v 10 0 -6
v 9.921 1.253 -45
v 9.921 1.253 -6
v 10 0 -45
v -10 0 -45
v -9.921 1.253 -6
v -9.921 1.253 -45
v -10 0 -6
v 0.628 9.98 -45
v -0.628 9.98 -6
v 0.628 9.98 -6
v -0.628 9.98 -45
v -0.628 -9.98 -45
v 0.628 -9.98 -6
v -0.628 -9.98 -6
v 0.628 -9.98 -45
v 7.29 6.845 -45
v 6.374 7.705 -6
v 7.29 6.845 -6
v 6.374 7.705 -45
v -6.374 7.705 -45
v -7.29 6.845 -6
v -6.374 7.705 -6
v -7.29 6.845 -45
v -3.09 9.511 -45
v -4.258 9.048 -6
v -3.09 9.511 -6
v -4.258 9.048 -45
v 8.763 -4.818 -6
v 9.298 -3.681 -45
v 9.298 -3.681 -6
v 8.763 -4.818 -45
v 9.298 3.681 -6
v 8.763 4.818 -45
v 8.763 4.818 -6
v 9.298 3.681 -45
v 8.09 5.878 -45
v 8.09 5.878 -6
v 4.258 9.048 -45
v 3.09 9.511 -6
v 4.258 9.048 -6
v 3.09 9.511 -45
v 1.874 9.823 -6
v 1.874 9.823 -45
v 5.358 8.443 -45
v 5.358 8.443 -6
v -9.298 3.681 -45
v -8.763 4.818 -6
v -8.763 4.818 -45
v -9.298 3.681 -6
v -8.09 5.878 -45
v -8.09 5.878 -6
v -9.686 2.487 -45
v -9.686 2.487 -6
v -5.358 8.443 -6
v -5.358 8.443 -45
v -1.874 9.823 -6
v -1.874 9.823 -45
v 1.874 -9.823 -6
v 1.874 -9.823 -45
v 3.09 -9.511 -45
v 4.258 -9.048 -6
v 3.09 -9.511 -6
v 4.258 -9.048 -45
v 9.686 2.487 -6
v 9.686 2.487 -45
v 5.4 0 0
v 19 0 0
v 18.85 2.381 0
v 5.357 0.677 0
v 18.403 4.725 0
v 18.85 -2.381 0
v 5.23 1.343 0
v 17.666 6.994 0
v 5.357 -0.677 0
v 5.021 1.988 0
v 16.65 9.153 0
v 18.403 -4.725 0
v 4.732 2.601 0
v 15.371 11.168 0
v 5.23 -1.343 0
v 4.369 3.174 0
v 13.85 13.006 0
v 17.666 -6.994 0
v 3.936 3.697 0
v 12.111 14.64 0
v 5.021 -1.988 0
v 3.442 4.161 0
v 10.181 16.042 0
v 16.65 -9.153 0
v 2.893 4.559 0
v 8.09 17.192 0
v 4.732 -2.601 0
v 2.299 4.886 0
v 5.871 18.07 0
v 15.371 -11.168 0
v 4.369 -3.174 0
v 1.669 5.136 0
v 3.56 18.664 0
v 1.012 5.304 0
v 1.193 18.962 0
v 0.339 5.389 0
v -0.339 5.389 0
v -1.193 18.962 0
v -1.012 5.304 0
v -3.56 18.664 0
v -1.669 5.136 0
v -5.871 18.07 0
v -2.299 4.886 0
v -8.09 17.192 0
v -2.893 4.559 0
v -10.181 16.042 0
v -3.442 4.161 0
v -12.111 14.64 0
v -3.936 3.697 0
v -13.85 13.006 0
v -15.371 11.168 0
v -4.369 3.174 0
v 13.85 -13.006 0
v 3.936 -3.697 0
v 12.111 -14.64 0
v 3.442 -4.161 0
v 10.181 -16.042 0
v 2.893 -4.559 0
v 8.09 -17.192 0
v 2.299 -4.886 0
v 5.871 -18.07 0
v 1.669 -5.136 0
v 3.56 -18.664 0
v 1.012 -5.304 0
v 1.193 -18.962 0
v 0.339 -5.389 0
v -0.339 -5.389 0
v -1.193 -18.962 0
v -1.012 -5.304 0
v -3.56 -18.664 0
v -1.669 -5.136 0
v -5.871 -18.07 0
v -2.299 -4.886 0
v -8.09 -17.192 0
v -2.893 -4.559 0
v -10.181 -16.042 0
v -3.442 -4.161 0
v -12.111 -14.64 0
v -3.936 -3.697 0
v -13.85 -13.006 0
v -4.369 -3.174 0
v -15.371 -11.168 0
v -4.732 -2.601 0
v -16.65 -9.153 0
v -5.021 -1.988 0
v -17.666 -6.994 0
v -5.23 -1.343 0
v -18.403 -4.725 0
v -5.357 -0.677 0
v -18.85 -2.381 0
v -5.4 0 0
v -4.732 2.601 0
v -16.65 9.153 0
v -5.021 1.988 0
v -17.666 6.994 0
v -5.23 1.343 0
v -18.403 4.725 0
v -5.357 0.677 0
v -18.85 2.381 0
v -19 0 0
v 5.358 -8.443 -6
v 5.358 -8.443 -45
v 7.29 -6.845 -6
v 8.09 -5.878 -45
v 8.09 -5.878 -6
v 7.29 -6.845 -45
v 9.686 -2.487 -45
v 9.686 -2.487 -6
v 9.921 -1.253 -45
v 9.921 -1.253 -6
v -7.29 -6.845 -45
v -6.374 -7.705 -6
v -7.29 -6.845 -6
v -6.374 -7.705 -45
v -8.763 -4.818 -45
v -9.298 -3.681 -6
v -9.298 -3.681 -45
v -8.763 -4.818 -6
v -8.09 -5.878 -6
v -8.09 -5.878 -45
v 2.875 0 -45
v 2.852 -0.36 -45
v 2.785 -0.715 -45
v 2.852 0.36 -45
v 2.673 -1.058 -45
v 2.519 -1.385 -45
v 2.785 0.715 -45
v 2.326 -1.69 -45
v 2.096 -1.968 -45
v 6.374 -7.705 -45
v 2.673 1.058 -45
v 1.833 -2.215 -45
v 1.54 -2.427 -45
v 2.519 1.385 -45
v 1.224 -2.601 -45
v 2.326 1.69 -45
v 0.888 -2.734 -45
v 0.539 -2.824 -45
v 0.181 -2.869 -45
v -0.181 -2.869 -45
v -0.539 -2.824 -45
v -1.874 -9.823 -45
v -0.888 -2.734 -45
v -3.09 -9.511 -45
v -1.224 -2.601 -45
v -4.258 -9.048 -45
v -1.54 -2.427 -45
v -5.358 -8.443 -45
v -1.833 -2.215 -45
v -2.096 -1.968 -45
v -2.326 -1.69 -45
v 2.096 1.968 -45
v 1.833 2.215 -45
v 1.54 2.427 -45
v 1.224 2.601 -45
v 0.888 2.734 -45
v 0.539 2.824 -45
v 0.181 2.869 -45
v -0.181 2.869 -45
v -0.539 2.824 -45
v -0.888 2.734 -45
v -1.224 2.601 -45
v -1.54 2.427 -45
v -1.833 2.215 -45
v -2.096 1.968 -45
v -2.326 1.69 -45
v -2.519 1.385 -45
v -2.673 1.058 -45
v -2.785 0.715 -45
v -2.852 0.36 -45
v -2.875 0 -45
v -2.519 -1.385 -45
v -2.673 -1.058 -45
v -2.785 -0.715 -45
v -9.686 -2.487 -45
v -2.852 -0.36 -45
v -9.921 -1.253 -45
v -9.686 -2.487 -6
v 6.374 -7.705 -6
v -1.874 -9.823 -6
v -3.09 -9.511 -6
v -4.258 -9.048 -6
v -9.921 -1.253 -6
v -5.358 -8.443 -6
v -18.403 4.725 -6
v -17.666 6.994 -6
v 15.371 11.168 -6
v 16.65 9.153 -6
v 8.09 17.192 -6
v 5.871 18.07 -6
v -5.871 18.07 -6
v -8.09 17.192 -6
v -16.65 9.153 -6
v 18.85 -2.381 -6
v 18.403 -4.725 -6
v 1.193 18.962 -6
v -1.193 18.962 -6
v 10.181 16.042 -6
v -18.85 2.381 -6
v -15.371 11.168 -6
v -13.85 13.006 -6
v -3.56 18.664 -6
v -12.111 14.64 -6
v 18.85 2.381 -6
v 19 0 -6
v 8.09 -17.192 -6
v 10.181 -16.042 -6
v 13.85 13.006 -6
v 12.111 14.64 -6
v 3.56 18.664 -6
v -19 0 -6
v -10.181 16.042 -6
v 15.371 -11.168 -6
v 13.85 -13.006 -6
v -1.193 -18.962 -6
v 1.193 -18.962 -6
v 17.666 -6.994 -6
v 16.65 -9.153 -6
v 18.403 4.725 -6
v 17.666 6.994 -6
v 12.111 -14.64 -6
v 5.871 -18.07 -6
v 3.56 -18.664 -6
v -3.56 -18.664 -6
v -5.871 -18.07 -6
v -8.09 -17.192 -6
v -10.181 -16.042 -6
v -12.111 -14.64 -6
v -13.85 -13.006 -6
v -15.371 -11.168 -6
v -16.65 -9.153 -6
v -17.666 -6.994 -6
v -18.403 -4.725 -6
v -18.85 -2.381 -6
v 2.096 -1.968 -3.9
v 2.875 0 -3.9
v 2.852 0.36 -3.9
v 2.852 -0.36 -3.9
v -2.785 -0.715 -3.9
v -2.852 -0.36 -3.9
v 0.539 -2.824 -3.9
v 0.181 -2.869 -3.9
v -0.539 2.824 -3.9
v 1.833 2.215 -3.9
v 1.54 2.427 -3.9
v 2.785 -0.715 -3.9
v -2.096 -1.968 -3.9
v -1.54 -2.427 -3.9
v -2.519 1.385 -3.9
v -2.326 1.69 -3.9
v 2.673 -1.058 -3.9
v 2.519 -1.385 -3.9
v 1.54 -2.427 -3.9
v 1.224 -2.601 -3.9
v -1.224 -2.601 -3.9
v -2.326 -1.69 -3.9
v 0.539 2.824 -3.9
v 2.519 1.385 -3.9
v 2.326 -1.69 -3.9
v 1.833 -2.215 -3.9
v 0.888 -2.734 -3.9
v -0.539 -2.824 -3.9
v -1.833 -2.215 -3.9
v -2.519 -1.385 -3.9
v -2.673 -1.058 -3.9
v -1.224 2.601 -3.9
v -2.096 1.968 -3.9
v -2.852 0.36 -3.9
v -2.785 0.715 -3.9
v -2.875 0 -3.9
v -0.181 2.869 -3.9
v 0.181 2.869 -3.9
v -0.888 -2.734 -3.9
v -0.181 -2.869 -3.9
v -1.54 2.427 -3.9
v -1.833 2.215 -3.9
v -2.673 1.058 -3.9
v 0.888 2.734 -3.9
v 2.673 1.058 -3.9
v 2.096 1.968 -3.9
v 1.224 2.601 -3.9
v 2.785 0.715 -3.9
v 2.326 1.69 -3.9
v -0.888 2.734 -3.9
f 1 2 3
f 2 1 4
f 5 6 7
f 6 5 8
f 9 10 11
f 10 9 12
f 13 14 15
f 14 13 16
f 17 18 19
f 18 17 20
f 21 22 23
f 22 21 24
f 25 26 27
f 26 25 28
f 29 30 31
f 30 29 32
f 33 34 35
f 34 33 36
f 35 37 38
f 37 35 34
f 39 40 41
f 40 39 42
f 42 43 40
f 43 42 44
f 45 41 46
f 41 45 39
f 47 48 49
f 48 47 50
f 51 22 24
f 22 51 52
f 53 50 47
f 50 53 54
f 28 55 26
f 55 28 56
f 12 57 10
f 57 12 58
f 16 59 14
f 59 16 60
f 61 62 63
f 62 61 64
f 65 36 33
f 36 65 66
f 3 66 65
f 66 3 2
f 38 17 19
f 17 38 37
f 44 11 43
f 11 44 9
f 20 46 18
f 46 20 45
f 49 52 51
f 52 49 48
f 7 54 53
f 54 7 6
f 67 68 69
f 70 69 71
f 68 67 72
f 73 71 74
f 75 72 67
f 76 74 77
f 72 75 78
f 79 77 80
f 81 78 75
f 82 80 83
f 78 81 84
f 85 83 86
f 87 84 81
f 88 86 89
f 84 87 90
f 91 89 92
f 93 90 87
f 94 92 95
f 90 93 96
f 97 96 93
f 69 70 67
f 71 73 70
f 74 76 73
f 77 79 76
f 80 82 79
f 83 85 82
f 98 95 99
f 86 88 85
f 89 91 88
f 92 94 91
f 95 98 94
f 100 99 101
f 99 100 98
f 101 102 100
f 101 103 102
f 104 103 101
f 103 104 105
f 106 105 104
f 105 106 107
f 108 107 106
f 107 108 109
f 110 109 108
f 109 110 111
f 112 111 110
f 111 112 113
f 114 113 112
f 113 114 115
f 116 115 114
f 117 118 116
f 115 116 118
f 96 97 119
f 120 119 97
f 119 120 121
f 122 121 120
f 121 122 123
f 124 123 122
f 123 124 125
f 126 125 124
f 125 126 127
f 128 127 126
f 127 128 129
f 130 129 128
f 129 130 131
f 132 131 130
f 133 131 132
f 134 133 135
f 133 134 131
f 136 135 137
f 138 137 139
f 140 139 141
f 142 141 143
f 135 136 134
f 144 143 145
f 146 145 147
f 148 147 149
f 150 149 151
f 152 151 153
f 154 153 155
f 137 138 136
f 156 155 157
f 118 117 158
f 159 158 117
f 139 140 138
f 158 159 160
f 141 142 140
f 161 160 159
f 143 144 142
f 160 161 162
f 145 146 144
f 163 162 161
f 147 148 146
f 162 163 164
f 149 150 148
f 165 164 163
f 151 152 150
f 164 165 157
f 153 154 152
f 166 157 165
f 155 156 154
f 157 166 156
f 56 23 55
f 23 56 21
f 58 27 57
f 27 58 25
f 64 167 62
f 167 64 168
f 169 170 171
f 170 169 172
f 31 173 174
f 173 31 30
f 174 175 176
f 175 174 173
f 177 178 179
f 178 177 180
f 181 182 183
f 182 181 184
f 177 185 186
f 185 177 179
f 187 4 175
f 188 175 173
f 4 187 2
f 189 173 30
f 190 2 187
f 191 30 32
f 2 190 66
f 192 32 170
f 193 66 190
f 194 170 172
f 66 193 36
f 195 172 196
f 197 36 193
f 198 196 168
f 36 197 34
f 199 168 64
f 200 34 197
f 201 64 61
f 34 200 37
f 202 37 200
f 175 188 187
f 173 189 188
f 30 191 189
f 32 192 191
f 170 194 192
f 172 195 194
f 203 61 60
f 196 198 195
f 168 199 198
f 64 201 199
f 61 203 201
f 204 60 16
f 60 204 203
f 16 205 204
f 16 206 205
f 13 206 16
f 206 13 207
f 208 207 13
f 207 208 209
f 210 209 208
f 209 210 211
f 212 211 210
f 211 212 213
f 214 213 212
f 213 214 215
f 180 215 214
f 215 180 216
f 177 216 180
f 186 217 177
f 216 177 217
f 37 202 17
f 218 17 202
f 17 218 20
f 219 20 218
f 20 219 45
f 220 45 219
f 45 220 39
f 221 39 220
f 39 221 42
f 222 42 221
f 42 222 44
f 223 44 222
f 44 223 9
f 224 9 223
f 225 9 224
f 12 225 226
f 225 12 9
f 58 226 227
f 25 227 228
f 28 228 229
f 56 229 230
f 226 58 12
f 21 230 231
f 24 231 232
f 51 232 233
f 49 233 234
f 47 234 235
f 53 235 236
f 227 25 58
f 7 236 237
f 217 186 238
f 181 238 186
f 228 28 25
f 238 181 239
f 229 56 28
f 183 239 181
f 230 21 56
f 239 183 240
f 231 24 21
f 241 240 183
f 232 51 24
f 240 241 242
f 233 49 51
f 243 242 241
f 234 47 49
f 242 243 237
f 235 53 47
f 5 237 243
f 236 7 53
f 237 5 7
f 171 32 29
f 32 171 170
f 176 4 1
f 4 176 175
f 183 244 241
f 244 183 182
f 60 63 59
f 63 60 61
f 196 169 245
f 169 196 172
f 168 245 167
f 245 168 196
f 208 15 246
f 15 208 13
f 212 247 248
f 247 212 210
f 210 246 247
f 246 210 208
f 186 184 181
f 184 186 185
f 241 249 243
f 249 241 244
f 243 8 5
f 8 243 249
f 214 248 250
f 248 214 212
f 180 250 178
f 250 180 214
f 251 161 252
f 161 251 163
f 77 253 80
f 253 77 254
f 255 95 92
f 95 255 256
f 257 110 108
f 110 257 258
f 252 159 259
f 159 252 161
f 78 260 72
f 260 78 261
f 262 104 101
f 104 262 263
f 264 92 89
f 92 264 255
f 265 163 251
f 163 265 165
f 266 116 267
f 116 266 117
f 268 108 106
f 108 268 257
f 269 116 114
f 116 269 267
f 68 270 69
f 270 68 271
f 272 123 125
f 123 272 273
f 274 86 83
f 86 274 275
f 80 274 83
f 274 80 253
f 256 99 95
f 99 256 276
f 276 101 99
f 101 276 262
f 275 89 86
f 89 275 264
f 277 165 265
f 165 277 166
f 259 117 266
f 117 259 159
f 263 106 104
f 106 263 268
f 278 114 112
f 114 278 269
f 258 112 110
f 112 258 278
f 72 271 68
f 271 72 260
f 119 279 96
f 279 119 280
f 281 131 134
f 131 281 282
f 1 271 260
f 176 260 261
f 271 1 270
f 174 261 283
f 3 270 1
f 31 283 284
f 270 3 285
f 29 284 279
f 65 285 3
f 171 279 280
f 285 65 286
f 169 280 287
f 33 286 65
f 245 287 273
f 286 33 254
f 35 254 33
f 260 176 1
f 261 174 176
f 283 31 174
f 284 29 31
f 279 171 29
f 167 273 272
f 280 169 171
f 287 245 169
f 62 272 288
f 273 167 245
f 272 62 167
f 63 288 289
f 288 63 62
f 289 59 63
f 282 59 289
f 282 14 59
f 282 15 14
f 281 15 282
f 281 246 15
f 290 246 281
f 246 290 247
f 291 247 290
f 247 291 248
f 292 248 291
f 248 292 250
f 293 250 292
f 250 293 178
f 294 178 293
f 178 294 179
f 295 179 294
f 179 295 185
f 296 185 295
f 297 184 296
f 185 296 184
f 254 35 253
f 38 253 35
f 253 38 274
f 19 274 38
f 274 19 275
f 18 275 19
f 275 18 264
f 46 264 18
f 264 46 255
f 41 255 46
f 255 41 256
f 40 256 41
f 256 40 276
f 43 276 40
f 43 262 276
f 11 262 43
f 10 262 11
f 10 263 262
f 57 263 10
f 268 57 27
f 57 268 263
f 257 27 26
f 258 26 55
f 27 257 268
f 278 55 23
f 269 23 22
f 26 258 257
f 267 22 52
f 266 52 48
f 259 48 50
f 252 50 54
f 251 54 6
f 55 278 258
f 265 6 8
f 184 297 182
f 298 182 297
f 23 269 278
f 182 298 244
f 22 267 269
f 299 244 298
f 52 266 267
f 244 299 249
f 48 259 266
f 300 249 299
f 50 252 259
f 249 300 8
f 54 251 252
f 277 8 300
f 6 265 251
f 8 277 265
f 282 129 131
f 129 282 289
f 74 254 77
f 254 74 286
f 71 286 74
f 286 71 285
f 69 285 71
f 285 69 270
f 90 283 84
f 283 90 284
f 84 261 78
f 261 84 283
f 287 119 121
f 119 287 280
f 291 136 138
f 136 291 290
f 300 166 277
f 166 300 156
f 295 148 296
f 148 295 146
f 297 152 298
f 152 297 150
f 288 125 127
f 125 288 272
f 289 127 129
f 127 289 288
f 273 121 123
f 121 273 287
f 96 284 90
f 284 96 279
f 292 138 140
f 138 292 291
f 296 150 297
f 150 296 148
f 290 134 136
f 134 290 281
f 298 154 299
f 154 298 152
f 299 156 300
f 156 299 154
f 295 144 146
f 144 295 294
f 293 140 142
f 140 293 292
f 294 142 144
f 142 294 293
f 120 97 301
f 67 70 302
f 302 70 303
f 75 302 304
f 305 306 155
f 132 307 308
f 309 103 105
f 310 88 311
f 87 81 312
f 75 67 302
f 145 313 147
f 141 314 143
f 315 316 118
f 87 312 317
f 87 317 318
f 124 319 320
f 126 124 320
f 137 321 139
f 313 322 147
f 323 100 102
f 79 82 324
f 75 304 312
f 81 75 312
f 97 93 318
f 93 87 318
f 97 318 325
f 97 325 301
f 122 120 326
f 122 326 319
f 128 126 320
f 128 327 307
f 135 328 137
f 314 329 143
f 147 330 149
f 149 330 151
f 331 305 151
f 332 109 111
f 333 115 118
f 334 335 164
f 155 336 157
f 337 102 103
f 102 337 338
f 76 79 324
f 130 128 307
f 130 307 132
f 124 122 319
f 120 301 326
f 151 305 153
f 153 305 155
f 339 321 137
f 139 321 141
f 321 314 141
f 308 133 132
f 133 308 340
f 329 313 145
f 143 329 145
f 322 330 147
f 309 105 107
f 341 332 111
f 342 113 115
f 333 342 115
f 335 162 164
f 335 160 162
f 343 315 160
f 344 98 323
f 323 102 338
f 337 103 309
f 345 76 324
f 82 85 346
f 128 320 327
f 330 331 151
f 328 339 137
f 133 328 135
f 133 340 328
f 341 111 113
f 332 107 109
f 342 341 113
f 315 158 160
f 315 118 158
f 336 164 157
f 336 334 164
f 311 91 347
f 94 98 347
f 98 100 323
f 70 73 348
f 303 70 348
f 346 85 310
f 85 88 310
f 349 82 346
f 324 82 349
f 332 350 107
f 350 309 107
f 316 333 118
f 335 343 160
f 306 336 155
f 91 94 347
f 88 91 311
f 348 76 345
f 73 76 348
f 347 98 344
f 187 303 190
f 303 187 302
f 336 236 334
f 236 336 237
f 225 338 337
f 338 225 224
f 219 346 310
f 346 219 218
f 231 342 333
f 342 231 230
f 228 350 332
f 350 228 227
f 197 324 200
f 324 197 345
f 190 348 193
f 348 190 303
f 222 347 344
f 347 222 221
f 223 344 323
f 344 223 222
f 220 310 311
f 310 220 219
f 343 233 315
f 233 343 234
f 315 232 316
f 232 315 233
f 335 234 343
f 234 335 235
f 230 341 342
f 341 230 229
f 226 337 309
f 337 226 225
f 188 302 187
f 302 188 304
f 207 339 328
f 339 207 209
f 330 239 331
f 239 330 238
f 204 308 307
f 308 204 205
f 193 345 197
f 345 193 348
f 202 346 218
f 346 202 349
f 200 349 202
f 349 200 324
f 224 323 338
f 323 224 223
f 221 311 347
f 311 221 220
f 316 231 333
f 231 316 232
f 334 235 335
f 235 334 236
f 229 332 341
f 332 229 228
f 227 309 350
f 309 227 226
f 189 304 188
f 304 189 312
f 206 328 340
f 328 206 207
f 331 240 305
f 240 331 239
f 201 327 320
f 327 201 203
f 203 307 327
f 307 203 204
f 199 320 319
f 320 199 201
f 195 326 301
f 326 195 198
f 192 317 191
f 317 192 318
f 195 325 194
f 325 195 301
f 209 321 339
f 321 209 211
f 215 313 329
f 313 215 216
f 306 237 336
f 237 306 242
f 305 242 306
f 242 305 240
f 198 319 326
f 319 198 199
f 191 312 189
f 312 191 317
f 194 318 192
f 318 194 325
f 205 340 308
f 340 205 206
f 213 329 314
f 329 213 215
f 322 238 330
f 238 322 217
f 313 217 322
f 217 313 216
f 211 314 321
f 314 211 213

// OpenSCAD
$fn = 50;


difference() {
	union() {
		translate(v = [0, 0, -45.0000000000]) {
			cylinder(h = 45, r = 10.0000000000);
		}
		translate(v = [0, 0, -6.0000000000]) {
			cylinder(h = 6, r = 19.0000000000);
		}
	}
	union() {
		translate(v = [0, 0, 0]) {
			rotate(a = [0, 0, 0]) {
				difference() {
					union() {
						#translate(v = [0, 0, -45.0000000000]) {
							cylinder(h = 45, r = 2.6000000000);
						}
						#translate(v = [0, 0, -3.9000000000]) {
							cylinder(h = 3.9000000000, r = 10.0000000000, r1 = 2.8750000000, r2 = 5.4000000000);
						}
						#translate(v = [0, 0, -45.0000000000]) {
							cylinder(h = 45, r = 2.8750000000);
						}
						#translate(v = [0, 0, -45.0000000000]) {
							cylinder(h = 45, r = 2.6000000000);
						}
					}
					union();
				}
			}
		}
	}
}
